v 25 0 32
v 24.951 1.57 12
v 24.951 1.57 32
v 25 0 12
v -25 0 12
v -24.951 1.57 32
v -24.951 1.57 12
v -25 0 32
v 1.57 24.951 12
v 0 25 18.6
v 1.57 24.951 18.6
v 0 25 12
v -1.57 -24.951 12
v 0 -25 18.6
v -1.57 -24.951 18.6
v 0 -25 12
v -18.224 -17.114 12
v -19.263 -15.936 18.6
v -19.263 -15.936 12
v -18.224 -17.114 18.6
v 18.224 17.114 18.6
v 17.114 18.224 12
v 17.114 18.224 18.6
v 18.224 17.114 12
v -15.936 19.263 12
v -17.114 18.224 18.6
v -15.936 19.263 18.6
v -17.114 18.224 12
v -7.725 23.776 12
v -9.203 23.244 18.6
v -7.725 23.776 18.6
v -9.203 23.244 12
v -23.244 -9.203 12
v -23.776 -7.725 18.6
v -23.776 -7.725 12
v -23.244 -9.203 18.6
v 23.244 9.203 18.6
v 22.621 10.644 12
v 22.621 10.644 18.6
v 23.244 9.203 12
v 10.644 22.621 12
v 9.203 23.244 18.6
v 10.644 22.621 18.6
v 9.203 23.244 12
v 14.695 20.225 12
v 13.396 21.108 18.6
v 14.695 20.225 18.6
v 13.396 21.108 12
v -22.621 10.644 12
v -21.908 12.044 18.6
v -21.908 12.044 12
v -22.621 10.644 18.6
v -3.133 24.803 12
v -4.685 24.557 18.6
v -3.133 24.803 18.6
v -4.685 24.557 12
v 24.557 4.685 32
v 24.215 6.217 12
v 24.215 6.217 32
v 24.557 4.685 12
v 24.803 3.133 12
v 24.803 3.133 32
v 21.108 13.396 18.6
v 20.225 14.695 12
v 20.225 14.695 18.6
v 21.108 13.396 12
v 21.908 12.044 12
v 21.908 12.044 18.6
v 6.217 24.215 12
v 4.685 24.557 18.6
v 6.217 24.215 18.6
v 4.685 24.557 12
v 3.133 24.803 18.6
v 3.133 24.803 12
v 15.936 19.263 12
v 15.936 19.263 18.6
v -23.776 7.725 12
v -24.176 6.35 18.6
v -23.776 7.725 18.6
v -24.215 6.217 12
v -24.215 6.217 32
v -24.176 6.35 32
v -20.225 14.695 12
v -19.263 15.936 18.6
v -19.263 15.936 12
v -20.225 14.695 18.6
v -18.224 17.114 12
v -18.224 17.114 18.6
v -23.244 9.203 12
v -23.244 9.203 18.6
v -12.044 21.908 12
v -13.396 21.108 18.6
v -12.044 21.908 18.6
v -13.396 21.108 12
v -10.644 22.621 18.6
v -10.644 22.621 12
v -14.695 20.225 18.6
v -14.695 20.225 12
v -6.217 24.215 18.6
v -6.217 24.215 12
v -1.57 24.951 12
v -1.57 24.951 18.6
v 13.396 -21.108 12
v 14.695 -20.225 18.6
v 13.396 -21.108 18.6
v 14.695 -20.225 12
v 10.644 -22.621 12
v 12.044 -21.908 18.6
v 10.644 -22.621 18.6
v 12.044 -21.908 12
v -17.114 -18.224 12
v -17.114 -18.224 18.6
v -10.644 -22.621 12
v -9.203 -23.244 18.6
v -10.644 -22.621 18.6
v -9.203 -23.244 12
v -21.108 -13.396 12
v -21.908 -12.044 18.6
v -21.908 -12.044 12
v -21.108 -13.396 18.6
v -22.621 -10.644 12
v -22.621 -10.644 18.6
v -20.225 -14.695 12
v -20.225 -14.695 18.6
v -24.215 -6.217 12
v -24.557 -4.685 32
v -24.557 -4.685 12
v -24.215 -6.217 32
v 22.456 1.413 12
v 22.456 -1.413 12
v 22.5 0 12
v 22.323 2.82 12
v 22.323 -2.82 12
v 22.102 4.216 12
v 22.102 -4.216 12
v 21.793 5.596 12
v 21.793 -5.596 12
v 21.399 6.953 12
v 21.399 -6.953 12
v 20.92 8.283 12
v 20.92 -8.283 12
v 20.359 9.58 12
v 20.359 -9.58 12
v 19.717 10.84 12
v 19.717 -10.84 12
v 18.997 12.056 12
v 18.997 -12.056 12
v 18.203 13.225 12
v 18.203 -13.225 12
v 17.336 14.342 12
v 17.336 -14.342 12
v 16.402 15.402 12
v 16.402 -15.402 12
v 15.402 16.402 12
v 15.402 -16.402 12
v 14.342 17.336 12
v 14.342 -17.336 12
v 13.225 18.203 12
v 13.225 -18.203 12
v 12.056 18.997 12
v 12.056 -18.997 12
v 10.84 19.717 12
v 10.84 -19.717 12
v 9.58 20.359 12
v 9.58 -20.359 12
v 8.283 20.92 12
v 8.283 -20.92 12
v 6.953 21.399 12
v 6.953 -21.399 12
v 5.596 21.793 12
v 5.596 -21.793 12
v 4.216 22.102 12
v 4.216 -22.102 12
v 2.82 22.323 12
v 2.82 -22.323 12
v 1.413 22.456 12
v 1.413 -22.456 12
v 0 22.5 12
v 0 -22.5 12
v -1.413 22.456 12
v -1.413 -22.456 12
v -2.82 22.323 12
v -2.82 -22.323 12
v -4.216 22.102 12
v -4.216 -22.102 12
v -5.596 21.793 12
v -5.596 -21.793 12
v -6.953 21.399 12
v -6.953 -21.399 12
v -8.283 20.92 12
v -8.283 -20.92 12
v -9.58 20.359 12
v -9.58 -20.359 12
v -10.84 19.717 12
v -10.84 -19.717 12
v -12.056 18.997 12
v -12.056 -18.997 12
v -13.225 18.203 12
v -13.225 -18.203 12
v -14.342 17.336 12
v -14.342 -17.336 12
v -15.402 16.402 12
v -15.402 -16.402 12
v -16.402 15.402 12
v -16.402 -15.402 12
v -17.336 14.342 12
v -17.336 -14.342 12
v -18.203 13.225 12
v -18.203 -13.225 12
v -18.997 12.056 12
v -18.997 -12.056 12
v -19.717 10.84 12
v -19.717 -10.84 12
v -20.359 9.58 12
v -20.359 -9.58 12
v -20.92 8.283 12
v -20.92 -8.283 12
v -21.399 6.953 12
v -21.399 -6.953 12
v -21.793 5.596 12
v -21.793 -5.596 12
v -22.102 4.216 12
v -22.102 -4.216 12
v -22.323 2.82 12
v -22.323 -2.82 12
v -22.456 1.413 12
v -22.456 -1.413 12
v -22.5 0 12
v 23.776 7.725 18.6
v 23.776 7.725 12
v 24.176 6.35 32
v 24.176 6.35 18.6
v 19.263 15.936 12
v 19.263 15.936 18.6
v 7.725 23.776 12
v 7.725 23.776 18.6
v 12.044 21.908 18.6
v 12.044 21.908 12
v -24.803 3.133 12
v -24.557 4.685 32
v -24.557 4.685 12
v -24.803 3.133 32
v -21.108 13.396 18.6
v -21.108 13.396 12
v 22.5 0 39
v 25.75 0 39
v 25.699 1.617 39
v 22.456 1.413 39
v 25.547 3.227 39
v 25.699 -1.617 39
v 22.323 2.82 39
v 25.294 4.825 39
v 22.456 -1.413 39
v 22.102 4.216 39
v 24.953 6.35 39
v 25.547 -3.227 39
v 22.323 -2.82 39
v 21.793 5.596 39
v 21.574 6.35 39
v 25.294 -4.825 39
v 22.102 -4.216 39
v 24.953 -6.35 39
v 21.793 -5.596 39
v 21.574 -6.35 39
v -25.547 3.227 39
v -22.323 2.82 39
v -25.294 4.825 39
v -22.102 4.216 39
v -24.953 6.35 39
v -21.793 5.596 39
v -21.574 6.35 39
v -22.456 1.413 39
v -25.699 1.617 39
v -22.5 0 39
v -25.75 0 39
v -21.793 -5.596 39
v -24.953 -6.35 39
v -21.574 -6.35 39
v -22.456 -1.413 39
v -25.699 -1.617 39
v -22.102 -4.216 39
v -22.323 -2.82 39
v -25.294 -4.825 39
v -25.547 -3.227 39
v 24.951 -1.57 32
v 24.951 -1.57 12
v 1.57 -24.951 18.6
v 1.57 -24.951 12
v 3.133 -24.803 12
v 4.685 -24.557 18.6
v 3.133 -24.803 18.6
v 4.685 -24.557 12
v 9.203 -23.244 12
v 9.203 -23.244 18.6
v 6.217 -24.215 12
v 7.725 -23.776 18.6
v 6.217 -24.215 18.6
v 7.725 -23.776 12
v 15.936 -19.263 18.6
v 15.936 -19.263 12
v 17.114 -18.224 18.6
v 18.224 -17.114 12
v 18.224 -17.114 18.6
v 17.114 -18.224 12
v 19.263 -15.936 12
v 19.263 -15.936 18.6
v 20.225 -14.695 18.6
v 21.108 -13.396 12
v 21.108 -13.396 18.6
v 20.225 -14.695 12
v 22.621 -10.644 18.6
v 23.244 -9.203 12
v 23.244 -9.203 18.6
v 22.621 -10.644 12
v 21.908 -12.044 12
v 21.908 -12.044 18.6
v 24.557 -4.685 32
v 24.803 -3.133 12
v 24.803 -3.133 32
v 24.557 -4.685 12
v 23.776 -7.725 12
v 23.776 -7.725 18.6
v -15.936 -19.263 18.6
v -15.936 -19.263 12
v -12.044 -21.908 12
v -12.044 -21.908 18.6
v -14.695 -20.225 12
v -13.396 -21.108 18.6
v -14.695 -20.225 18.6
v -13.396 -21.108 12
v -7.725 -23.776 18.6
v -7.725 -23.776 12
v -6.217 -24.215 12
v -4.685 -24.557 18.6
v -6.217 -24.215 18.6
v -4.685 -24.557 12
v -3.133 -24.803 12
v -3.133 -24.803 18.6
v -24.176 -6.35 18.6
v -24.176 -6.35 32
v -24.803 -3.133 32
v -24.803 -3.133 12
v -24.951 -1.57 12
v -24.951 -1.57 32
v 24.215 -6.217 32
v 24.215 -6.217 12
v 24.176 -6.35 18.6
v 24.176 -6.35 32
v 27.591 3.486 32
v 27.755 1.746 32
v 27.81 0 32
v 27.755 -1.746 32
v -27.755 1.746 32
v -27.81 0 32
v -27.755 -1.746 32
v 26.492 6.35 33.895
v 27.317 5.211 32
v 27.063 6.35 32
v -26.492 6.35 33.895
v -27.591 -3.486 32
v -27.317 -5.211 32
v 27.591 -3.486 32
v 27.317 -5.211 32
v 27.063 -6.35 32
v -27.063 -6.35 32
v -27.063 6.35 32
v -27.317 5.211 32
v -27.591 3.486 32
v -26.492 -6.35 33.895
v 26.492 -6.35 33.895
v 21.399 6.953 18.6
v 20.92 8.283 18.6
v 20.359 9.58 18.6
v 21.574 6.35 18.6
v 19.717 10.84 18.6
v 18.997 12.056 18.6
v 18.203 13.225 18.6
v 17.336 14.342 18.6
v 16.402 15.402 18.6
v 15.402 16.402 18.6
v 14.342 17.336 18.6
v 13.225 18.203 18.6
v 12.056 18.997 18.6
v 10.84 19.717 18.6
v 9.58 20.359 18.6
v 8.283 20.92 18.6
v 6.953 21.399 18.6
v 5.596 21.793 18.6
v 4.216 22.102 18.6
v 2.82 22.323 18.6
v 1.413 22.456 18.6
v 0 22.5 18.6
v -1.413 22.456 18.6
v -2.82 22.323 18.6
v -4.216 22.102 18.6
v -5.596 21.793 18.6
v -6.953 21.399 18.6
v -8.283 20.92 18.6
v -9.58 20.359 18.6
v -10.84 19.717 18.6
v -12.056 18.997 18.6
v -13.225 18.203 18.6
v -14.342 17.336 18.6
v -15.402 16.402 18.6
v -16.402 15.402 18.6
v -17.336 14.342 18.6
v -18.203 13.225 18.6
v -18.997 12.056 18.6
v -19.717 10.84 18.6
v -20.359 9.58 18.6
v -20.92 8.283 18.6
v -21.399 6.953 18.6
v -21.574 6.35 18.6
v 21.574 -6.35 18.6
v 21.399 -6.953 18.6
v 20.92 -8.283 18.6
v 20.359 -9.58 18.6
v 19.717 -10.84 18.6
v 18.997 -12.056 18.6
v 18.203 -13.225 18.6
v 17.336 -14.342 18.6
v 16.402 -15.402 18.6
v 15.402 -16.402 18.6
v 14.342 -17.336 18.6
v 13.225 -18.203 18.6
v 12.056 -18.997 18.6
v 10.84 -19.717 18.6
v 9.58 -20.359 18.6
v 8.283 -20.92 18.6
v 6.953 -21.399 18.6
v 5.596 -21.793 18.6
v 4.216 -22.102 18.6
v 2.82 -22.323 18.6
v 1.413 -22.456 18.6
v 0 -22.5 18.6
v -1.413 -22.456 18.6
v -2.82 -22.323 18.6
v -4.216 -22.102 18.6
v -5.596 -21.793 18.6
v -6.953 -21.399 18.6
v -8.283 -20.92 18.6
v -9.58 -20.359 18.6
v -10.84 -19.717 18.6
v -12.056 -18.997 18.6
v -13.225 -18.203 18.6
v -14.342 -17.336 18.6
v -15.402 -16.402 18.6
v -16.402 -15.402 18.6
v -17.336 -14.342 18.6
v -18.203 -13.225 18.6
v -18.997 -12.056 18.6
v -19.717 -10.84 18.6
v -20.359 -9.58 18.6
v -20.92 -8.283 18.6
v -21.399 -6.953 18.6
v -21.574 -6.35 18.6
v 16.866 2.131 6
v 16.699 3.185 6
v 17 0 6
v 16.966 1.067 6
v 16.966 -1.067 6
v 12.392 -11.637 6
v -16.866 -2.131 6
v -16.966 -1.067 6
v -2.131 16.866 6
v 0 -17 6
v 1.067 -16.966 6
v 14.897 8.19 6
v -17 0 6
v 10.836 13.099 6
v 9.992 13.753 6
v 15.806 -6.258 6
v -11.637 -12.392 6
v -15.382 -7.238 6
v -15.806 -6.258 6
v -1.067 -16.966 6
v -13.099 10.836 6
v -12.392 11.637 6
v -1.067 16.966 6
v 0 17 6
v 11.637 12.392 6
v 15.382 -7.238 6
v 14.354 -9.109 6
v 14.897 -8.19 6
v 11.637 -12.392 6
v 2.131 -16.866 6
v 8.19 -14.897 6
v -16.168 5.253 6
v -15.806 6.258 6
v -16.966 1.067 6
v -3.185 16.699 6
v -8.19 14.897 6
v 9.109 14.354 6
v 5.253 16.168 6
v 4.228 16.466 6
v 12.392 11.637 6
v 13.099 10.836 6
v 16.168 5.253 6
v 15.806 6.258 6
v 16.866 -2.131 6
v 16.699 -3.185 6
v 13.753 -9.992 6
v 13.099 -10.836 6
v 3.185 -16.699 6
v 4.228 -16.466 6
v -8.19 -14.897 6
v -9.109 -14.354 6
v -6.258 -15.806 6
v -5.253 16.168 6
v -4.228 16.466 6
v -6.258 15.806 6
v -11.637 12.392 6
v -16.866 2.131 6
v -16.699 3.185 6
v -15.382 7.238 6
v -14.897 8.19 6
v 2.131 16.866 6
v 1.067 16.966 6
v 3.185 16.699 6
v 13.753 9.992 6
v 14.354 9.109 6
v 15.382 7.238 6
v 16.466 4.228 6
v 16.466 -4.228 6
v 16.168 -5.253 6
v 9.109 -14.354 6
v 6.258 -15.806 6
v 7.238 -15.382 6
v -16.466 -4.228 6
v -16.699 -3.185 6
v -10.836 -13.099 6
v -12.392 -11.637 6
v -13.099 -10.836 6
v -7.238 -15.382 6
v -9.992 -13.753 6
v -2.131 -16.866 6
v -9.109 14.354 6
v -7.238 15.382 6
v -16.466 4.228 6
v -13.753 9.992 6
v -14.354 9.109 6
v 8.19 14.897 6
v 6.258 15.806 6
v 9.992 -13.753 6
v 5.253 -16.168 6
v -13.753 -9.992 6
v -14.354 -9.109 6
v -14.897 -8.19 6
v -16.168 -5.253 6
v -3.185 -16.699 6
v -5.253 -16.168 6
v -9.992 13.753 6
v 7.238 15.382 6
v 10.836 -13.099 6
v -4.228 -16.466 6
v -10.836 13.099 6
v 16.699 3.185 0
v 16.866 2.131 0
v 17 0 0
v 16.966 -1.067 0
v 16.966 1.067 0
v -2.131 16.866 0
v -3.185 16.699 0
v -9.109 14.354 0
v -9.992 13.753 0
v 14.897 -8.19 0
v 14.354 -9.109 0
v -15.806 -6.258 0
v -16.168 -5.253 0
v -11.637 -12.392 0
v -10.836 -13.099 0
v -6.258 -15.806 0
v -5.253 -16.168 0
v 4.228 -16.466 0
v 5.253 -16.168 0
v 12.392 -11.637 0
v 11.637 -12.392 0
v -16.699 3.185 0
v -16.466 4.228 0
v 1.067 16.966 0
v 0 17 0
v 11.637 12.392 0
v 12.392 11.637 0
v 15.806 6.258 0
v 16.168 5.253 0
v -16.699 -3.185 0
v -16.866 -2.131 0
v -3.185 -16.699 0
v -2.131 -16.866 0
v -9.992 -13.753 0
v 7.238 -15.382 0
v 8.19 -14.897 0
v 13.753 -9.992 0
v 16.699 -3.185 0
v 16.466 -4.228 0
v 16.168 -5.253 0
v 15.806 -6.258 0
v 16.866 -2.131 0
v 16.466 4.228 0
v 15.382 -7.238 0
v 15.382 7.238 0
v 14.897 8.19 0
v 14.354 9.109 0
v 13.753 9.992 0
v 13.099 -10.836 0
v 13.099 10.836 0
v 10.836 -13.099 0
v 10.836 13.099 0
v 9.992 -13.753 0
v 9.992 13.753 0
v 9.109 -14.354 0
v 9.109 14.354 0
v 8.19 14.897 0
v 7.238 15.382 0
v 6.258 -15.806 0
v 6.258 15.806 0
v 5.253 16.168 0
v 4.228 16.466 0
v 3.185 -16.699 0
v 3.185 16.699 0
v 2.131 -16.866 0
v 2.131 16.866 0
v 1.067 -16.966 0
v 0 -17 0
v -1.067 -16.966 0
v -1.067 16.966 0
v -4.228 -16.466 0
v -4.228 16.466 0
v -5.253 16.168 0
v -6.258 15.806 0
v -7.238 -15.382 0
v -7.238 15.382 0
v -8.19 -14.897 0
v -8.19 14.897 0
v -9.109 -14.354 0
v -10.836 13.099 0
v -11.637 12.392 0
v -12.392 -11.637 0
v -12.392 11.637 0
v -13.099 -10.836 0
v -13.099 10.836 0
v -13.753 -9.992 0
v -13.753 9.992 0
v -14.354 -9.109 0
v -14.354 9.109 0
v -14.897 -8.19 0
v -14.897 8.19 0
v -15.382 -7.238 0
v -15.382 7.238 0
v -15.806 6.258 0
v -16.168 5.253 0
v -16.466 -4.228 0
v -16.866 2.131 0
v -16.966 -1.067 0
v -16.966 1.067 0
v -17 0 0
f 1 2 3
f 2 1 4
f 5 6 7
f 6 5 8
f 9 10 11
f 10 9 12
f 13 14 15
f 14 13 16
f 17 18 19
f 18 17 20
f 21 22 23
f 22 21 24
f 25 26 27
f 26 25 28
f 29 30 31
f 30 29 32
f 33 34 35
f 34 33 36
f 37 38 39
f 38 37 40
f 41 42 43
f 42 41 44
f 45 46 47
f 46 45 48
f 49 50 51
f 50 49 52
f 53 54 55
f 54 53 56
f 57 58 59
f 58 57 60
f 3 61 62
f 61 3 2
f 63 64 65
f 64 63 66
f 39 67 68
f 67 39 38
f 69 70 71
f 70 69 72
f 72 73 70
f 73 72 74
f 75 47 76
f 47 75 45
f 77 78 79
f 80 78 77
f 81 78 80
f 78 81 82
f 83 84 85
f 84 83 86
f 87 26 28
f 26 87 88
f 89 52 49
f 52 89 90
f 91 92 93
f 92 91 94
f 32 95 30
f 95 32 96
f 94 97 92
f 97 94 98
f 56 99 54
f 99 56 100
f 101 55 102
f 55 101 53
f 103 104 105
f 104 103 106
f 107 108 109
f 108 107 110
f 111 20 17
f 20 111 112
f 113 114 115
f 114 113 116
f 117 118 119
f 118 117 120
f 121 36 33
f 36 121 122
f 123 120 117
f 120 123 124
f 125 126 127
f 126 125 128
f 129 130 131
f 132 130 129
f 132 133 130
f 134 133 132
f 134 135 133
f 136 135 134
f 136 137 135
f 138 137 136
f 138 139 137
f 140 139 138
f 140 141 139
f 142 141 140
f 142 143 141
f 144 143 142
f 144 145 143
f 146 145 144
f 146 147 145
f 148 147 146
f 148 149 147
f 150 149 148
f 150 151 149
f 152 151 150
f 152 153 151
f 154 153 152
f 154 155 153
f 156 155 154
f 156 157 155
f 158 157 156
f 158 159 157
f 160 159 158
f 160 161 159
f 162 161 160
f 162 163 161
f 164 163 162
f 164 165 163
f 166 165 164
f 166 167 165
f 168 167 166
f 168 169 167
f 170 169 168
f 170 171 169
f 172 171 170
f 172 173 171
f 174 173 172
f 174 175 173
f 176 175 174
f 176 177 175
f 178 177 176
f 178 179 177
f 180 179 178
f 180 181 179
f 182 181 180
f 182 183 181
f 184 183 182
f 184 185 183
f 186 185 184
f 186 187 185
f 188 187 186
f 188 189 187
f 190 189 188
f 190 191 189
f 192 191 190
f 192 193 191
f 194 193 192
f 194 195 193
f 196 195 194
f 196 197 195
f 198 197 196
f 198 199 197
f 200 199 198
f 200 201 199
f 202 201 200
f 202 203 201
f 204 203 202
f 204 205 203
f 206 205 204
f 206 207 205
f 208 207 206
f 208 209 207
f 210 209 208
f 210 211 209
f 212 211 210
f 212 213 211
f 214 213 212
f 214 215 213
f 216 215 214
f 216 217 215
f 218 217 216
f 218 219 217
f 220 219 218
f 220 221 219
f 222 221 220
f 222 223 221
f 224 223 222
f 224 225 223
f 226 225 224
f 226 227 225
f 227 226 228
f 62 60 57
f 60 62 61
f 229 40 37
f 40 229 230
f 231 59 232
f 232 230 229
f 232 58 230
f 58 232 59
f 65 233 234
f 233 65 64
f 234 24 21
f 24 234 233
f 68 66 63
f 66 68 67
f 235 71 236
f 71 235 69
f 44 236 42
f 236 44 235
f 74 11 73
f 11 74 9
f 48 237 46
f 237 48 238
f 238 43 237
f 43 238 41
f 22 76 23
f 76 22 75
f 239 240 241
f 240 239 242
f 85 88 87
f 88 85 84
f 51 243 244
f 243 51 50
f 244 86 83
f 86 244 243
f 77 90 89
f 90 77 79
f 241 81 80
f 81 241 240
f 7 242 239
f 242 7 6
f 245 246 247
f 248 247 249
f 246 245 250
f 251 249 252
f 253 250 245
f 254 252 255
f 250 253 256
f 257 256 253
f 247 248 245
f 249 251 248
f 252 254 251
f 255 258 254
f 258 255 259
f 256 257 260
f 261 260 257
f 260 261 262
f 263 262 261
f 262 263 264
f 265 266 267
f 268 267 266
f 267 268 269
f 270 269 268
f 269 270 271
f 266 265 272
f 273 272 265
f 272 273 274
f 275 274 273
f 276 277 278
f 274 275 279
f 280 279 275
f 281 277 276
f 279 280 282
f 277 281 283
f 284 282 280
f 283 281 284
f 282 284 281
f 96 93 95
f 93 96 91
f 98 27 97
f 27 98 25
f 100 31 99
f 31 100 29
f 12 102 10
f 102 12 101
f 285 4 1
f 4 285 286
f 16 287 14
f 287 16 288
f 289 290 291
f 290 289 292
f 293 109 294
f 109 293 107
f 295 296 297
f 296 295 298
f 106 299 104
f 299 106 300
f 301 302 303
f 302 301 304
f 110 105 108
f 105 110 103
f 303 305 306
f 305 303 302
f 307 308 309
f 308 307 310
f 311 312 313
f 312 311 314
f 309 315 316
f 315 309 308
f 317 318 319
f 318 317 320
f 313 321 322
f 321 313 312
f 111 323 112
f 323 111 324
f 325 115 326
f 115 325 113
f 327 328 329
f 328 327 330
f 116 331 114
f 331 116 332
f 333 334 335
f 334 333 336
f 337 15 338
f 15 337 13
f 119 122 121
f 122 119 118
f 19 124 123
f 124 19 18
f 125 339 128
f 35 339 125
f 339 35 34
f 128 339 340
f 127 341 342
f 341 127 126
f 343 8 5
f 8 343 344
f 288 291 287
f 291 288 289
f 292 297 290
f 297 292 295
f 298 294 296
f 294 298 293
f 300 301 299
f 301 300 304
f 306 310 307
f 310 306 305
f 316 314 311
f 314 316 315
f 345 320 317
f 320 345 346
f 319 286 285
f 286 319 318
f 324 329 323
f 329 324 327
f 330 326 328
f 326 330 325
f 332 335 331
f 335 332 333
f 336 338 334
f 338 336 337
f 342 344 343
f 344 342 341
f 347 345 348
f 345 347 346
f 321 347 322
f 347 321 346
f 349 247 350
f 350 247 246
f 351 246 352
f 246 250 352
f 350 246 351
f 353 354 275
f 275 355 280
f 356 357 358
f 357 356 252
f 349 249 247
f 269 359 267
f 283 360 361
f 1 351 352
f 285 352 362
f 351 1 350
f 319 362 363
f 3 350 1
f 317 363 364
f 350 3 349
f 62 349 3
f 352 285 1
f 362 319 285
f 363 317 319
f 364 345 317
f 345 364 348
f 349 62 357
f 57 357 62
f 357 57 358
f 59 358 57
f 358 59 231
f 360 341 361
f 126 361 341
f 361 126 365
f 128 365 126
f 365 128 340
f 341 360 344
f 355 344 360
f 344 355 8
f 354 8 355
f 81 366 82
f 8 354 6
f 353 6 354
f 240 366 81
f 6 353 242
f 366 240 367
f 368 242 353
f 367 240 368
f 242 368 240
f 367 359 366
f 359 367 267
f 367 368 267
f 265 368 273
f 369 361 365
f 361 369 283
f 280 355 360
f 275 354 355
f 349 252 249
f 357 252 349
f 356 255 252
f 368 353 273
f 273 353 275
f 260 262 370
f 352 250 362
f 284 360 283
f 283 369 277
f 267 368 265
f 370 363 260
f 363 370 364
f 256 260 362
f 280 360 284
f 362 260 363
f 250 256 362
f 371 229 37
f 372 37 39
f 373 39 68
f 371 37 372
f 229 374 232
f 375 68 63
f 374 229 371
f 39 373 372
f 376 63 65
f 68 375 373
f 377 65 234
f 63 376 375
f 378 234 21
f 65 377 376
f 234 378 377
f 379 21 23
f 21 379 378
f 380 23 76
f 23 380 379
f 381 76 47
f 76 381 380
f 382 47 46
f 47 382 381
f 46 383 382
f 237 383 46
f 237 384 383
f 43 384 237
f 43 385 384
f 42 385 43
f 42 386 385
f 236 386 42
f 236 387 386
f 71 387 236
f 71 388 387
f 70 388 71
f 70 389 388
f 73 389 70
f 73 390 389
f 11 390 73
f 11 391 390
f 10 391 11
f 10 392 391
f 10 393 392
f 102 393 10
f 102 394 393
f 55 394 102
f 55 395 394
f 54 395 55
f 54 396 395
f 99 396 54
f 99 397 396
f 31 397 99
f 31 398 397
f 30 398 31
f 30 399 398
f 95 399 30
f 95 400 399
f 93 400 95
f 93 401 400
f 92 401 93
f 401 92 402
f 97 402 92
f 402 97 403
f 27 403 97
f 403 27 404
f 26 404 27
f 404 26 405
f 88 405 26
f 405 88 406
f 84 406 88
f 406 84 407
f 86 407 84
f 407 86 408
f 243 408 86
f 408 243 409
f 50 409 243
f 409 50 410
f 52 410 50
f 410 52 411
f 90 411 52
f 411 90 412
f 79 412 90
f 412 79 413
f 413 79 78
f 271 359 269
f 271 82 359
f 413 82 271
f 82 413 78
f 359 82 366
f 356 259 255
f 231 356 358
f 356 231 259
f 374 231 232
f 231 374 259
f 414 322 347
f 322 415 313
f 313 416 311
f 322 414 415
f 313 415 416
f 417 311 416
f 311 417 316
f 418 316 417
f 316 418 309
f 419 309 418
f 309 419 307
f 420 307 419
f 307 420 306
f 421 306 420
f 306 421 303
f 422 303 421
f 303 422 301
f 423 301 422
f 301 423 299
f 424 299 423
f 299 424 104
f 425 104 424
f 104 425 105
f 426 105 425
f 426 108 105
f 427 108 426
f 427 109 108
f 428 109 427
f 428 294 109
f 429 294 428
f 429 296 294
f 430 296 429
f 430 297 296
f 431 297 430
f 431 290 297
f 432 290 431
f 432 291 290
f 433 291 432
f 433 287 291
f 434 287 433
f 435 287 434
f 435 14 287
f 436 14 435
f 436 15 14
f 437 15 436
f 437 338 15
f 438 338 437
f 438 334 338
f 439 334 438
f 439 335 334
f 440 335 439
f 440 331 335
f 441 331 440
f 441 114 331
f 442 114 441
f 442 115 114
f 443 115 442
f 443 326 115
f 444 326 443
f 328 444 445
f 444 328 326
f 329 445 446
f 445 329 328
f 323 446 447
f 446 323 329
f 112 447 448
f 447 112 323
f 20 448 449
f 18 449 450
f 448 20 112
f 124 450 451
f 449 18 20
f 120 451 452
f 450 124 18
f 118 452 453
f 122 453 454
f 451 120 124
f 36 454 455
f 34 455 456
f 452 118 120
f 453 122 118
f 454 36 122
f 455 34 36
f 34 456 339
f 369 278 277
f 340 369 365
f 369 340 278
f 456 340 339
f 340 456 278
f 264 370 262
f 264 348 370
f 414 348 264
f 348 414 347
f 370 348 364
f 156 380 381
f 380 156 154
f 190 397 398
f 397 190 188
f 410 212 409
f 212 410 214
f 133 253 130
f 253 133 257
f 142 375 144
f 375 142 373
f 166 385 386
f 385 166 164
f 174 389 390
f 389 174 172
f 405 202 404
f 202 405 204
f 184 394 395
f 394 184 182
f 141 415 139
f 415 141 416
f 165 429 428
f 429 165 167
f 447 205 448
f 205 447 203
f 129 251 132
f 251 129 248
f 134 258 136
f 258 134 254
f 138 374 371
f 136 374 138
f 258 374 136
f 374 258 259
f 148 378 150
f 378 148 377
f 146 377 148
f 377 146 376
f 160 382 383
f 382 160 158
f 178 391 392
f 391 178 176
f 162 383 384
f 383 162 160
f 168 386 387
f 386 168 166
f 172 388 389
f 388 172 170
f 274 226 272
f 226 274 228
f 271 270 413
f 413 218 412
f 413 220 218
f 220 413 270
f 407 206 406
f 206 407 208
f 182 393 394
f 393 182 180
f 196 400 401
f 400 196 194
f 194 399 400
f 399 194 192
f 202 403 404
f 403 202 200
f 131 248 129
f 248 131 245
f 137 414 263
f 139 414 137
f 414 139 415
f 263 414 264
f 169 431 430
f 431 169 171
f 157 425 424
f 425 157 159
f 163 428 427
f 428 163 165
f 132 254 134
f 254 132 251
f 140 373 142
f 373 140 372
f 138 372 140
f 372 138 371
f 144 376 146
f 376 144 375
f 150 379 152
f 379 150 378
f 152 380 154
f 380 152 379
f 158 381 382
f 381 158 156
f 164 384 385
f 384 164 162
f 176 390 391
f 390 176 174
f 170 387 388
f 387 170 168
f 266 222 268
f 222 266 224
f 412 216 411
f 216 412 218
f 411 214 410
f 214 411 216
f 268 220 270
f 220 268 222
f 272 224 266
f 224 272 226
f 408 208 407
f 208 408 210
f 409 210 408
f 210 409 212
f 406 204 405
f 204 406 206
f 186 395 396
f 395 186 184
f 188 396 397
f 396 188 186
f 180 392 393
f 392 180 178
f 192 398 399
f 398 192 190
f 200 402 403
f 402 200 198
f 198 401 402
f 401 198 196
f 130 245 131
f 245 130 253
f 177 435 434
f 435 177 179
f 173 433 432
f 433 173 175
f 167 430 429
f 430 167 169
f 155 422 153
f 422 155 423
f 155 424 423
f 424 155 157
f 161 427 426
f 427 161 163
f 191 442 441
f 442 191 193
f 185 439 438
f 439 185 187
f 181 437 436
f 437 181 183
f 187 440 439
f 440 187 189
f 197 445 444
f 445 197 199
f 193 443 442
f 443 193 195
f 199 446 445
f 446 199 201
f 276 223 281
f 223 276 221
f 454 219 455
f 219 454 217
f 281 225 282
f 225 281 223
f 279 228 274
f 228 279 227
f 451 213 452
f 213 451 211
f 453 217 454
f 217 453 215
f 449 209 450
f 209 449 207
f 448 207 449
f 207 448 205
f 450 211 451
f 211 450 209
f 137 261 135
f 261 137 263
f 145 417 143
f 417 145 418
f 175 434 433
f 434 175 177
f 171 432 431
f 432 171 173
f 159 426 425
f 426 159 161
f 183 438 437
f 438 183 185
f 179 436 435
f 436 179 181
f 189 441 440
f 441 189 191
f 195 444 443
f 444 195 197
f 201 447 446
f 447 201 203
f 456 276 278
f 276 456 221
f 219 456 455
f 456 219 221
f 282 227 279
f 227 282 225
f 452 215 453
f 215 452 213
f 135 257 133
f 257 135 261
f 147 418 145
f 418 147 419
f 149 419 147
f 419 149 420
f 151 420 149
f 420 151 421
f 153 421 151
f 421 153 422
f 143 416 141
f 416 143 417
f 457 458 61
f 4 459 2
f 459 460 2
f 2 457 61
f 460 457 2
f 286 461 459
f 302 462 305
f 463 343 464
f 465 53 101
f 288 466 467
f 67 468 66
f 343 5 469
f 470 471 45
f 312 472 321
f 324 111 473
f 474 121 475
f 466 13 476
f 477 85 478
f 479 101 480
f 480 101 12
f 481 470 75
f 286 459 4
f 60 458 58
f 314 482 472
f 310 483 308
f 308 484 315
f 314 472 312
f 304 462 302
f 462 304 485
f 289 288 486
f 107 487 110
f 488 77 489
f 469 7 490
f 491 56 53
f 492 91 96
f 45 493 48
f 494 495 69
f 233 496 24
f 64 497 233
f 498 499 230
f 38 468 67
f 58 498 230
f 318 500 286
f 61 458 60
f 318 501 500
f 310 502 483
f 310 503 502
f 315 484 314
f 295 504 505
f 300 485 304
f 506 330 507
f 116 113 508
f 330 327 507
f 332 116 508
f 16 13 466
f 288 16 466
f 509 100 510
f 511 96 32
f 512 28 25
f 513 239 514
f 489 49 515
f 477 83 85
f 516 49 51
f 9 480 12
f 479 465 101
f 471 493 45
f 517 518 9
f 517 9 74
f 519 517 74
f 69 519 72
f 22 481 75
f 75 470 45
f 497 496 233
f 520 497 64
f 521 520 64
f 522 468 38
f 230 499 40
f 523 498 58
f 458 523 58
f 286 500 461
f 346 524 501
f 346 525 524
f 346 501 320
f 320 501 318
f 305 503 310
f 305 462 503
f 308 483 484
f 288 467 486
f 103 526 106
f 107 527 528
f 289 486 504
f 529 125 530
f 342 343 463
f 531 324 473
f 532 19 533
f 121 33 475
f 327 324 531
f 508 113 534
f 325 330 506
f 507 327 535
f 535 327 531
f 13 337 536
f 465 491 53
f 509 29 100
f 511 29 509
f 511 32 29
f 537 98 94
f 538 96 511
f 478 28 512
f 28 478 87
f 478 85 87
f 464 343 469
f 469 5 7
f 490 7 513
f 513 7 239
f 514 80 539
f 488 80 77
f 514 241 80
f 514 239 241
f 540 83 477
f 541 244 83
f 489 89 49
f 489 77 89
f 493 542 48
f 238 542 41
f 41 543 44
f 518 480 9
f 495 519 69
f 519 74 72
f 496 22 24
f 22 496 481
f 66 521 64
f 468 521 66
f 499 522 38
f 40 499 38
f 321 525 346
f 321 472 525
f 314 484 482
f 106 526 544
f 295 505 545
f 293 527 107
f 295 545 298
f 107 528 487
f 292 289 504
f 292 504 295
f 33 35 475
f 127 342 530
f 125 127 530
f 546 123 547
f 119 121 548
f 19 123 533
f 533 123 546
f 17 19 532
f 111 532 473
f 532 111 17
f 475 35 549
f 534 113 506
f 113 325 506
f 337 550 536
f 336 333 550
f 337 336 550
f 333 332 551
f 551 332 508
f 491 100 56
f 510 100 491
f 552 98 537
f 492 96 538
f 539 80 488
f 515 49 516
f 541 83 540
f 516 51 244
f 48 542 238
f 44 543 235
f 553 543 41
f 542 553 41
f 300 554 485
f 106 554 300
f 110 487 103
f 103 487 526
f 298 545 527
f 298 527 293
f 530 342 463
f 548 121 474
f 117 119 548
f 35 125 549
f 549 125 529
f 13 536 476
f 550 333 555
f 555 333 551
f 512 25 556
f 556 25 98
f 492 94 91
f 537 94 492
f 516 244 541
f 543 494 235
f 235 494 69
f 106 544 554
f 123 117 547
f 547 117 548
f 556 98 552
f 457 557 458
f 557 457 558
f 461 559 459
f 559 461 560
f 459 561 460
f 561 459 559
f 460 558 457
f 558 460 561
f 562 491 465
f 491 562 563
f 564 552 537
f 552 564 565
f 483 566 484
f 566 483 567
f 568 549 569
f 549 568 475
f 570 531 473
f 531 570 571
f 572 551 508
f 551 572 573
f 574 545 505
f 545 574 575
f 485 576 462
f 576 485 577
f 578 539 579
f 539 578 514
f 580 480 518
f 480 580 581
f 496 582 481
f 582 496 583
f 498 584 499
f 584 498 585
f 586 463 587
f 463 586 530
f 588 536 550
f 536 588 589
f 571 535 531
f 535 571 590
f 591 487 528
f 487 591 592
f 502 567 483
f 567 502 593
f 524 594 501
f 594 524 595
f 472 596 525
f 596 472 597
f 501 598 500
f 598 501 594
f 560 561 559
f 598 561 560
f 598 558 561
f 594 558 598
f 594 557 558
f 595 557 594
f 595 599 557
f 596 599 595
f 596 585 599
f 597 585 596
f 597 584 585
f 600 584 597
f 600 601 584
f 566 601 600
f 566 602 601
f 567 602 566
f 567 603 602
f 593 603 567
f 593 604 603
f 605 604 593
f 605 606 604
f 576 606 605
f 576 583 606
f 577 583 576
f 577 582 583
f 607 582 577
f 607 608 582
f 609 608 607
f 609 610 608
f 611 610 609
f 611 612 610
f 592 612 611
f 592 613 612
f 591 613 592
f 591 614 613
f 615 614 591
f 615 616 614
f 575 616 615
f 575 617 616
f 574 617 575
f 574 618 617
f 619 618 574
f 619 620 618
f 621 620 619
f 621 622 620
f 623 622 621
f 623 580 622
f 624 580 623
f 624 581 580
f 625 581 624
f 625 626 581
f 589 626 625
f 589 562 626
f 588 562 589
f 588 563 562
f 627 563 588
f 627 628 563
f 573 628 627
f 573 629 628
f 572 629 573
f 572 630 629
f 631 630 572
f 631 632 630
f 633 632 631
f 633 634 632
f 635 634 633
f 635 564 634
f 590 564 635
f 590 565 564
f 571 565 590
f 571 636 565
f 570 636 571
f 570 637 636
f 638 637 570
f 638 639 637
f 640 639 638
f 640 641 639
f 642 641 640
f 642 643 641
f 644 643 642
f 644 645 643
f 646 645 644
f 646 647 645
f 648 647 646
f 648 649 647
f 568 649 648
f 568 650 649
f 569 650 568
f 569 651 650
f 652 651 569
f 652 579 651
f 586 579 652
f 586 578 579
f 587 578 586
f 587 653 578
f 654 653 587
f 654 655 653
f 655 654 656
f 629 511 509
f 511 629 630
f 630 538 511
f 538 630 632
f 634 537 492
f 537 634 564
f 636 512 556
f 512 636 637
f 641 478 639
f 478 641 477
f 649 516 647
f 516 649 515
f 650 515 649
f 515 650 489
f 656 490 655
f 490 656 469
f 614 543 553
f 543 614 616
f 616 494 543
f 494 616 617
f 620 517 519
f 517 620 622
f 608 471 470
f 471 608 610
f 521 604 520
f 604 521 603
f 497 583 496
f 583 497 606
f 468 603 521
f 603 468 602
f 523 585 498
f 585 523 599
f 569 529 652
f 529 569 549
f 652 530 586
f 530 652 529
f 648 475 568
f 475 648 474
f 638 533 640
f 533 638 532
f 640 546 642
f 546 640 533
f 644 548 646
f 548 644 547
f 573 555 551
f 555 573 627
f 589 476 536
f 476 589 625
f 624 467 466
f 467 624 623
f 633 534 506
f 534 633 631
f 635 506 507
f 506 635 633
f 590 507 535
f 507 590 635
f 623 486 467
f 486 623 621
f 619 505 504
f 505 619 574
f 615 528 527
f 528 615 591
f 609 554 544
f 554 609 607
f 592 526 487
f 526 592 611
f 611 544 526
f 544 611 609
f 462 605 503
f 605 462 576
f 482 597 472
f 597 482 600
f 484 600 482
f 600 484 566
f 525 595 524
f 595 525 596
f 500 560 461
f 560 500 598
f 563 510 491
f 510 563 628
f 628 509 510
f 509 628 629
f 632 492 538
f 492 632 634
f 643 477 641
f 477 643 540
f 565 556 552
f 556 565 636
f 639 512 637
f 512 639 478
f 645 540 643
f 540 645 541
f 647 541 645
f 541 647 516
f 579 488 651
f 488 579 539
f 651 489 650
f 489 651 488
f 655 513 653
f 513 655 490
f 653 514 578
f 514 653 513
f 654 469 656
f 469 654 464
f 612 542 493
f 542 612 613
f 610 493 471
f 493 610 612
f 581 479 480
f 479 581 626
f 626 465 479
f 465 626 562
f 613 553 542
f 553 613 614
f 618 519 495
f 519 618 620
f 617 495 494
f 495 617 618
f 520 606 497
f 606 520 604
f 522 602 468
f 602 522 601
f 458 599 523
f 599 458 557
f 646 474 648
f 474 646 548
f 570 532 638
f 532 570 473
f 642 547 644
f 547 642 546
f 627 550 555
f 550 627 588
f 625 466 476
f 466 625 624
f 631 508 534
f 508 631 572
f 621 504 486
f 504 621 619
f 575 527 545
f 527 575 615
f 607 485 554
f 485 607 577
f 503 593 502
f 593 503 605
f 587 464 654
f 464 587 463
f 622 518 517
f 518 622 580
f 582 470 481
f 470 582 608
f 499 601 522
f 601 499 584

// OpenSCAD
module copy_x() {
    children();
    mirror([0,1,0])
    children();
}

$fn = 100;

d1 = 34;
d2 = 50;
d2in = 45;
d3 = 54;
h1 = 8;
h2 = 10.6;
h23 = 31;

w3 = 12.7;

translate([0, 0, h1/2+2])
linear_extrude(height = h1-2, scale = d2/d1)
circle(d = d1);

linear_extrude(height = h1/2+2)
circle(d = d1);

difference() {
    union() {
        translate([0, 0, 8+h1/2])
        cylinder(d = d2, h = h23-h1/2);
        
        translate([0, 0, h1 + h23])
        mirror([0, 0, 1])
        linear_extrude(height = 7, scale = d3/d2)
        circle(d = d2+1.5);
    }
    
    copy_x()
    translate([-50, w3/2, h1+h2])
    cube([100, 100, 100]);
    
    translate([0, 0, h1 + 2.5])
    cylinder(d = d2in, h = 100);
}
